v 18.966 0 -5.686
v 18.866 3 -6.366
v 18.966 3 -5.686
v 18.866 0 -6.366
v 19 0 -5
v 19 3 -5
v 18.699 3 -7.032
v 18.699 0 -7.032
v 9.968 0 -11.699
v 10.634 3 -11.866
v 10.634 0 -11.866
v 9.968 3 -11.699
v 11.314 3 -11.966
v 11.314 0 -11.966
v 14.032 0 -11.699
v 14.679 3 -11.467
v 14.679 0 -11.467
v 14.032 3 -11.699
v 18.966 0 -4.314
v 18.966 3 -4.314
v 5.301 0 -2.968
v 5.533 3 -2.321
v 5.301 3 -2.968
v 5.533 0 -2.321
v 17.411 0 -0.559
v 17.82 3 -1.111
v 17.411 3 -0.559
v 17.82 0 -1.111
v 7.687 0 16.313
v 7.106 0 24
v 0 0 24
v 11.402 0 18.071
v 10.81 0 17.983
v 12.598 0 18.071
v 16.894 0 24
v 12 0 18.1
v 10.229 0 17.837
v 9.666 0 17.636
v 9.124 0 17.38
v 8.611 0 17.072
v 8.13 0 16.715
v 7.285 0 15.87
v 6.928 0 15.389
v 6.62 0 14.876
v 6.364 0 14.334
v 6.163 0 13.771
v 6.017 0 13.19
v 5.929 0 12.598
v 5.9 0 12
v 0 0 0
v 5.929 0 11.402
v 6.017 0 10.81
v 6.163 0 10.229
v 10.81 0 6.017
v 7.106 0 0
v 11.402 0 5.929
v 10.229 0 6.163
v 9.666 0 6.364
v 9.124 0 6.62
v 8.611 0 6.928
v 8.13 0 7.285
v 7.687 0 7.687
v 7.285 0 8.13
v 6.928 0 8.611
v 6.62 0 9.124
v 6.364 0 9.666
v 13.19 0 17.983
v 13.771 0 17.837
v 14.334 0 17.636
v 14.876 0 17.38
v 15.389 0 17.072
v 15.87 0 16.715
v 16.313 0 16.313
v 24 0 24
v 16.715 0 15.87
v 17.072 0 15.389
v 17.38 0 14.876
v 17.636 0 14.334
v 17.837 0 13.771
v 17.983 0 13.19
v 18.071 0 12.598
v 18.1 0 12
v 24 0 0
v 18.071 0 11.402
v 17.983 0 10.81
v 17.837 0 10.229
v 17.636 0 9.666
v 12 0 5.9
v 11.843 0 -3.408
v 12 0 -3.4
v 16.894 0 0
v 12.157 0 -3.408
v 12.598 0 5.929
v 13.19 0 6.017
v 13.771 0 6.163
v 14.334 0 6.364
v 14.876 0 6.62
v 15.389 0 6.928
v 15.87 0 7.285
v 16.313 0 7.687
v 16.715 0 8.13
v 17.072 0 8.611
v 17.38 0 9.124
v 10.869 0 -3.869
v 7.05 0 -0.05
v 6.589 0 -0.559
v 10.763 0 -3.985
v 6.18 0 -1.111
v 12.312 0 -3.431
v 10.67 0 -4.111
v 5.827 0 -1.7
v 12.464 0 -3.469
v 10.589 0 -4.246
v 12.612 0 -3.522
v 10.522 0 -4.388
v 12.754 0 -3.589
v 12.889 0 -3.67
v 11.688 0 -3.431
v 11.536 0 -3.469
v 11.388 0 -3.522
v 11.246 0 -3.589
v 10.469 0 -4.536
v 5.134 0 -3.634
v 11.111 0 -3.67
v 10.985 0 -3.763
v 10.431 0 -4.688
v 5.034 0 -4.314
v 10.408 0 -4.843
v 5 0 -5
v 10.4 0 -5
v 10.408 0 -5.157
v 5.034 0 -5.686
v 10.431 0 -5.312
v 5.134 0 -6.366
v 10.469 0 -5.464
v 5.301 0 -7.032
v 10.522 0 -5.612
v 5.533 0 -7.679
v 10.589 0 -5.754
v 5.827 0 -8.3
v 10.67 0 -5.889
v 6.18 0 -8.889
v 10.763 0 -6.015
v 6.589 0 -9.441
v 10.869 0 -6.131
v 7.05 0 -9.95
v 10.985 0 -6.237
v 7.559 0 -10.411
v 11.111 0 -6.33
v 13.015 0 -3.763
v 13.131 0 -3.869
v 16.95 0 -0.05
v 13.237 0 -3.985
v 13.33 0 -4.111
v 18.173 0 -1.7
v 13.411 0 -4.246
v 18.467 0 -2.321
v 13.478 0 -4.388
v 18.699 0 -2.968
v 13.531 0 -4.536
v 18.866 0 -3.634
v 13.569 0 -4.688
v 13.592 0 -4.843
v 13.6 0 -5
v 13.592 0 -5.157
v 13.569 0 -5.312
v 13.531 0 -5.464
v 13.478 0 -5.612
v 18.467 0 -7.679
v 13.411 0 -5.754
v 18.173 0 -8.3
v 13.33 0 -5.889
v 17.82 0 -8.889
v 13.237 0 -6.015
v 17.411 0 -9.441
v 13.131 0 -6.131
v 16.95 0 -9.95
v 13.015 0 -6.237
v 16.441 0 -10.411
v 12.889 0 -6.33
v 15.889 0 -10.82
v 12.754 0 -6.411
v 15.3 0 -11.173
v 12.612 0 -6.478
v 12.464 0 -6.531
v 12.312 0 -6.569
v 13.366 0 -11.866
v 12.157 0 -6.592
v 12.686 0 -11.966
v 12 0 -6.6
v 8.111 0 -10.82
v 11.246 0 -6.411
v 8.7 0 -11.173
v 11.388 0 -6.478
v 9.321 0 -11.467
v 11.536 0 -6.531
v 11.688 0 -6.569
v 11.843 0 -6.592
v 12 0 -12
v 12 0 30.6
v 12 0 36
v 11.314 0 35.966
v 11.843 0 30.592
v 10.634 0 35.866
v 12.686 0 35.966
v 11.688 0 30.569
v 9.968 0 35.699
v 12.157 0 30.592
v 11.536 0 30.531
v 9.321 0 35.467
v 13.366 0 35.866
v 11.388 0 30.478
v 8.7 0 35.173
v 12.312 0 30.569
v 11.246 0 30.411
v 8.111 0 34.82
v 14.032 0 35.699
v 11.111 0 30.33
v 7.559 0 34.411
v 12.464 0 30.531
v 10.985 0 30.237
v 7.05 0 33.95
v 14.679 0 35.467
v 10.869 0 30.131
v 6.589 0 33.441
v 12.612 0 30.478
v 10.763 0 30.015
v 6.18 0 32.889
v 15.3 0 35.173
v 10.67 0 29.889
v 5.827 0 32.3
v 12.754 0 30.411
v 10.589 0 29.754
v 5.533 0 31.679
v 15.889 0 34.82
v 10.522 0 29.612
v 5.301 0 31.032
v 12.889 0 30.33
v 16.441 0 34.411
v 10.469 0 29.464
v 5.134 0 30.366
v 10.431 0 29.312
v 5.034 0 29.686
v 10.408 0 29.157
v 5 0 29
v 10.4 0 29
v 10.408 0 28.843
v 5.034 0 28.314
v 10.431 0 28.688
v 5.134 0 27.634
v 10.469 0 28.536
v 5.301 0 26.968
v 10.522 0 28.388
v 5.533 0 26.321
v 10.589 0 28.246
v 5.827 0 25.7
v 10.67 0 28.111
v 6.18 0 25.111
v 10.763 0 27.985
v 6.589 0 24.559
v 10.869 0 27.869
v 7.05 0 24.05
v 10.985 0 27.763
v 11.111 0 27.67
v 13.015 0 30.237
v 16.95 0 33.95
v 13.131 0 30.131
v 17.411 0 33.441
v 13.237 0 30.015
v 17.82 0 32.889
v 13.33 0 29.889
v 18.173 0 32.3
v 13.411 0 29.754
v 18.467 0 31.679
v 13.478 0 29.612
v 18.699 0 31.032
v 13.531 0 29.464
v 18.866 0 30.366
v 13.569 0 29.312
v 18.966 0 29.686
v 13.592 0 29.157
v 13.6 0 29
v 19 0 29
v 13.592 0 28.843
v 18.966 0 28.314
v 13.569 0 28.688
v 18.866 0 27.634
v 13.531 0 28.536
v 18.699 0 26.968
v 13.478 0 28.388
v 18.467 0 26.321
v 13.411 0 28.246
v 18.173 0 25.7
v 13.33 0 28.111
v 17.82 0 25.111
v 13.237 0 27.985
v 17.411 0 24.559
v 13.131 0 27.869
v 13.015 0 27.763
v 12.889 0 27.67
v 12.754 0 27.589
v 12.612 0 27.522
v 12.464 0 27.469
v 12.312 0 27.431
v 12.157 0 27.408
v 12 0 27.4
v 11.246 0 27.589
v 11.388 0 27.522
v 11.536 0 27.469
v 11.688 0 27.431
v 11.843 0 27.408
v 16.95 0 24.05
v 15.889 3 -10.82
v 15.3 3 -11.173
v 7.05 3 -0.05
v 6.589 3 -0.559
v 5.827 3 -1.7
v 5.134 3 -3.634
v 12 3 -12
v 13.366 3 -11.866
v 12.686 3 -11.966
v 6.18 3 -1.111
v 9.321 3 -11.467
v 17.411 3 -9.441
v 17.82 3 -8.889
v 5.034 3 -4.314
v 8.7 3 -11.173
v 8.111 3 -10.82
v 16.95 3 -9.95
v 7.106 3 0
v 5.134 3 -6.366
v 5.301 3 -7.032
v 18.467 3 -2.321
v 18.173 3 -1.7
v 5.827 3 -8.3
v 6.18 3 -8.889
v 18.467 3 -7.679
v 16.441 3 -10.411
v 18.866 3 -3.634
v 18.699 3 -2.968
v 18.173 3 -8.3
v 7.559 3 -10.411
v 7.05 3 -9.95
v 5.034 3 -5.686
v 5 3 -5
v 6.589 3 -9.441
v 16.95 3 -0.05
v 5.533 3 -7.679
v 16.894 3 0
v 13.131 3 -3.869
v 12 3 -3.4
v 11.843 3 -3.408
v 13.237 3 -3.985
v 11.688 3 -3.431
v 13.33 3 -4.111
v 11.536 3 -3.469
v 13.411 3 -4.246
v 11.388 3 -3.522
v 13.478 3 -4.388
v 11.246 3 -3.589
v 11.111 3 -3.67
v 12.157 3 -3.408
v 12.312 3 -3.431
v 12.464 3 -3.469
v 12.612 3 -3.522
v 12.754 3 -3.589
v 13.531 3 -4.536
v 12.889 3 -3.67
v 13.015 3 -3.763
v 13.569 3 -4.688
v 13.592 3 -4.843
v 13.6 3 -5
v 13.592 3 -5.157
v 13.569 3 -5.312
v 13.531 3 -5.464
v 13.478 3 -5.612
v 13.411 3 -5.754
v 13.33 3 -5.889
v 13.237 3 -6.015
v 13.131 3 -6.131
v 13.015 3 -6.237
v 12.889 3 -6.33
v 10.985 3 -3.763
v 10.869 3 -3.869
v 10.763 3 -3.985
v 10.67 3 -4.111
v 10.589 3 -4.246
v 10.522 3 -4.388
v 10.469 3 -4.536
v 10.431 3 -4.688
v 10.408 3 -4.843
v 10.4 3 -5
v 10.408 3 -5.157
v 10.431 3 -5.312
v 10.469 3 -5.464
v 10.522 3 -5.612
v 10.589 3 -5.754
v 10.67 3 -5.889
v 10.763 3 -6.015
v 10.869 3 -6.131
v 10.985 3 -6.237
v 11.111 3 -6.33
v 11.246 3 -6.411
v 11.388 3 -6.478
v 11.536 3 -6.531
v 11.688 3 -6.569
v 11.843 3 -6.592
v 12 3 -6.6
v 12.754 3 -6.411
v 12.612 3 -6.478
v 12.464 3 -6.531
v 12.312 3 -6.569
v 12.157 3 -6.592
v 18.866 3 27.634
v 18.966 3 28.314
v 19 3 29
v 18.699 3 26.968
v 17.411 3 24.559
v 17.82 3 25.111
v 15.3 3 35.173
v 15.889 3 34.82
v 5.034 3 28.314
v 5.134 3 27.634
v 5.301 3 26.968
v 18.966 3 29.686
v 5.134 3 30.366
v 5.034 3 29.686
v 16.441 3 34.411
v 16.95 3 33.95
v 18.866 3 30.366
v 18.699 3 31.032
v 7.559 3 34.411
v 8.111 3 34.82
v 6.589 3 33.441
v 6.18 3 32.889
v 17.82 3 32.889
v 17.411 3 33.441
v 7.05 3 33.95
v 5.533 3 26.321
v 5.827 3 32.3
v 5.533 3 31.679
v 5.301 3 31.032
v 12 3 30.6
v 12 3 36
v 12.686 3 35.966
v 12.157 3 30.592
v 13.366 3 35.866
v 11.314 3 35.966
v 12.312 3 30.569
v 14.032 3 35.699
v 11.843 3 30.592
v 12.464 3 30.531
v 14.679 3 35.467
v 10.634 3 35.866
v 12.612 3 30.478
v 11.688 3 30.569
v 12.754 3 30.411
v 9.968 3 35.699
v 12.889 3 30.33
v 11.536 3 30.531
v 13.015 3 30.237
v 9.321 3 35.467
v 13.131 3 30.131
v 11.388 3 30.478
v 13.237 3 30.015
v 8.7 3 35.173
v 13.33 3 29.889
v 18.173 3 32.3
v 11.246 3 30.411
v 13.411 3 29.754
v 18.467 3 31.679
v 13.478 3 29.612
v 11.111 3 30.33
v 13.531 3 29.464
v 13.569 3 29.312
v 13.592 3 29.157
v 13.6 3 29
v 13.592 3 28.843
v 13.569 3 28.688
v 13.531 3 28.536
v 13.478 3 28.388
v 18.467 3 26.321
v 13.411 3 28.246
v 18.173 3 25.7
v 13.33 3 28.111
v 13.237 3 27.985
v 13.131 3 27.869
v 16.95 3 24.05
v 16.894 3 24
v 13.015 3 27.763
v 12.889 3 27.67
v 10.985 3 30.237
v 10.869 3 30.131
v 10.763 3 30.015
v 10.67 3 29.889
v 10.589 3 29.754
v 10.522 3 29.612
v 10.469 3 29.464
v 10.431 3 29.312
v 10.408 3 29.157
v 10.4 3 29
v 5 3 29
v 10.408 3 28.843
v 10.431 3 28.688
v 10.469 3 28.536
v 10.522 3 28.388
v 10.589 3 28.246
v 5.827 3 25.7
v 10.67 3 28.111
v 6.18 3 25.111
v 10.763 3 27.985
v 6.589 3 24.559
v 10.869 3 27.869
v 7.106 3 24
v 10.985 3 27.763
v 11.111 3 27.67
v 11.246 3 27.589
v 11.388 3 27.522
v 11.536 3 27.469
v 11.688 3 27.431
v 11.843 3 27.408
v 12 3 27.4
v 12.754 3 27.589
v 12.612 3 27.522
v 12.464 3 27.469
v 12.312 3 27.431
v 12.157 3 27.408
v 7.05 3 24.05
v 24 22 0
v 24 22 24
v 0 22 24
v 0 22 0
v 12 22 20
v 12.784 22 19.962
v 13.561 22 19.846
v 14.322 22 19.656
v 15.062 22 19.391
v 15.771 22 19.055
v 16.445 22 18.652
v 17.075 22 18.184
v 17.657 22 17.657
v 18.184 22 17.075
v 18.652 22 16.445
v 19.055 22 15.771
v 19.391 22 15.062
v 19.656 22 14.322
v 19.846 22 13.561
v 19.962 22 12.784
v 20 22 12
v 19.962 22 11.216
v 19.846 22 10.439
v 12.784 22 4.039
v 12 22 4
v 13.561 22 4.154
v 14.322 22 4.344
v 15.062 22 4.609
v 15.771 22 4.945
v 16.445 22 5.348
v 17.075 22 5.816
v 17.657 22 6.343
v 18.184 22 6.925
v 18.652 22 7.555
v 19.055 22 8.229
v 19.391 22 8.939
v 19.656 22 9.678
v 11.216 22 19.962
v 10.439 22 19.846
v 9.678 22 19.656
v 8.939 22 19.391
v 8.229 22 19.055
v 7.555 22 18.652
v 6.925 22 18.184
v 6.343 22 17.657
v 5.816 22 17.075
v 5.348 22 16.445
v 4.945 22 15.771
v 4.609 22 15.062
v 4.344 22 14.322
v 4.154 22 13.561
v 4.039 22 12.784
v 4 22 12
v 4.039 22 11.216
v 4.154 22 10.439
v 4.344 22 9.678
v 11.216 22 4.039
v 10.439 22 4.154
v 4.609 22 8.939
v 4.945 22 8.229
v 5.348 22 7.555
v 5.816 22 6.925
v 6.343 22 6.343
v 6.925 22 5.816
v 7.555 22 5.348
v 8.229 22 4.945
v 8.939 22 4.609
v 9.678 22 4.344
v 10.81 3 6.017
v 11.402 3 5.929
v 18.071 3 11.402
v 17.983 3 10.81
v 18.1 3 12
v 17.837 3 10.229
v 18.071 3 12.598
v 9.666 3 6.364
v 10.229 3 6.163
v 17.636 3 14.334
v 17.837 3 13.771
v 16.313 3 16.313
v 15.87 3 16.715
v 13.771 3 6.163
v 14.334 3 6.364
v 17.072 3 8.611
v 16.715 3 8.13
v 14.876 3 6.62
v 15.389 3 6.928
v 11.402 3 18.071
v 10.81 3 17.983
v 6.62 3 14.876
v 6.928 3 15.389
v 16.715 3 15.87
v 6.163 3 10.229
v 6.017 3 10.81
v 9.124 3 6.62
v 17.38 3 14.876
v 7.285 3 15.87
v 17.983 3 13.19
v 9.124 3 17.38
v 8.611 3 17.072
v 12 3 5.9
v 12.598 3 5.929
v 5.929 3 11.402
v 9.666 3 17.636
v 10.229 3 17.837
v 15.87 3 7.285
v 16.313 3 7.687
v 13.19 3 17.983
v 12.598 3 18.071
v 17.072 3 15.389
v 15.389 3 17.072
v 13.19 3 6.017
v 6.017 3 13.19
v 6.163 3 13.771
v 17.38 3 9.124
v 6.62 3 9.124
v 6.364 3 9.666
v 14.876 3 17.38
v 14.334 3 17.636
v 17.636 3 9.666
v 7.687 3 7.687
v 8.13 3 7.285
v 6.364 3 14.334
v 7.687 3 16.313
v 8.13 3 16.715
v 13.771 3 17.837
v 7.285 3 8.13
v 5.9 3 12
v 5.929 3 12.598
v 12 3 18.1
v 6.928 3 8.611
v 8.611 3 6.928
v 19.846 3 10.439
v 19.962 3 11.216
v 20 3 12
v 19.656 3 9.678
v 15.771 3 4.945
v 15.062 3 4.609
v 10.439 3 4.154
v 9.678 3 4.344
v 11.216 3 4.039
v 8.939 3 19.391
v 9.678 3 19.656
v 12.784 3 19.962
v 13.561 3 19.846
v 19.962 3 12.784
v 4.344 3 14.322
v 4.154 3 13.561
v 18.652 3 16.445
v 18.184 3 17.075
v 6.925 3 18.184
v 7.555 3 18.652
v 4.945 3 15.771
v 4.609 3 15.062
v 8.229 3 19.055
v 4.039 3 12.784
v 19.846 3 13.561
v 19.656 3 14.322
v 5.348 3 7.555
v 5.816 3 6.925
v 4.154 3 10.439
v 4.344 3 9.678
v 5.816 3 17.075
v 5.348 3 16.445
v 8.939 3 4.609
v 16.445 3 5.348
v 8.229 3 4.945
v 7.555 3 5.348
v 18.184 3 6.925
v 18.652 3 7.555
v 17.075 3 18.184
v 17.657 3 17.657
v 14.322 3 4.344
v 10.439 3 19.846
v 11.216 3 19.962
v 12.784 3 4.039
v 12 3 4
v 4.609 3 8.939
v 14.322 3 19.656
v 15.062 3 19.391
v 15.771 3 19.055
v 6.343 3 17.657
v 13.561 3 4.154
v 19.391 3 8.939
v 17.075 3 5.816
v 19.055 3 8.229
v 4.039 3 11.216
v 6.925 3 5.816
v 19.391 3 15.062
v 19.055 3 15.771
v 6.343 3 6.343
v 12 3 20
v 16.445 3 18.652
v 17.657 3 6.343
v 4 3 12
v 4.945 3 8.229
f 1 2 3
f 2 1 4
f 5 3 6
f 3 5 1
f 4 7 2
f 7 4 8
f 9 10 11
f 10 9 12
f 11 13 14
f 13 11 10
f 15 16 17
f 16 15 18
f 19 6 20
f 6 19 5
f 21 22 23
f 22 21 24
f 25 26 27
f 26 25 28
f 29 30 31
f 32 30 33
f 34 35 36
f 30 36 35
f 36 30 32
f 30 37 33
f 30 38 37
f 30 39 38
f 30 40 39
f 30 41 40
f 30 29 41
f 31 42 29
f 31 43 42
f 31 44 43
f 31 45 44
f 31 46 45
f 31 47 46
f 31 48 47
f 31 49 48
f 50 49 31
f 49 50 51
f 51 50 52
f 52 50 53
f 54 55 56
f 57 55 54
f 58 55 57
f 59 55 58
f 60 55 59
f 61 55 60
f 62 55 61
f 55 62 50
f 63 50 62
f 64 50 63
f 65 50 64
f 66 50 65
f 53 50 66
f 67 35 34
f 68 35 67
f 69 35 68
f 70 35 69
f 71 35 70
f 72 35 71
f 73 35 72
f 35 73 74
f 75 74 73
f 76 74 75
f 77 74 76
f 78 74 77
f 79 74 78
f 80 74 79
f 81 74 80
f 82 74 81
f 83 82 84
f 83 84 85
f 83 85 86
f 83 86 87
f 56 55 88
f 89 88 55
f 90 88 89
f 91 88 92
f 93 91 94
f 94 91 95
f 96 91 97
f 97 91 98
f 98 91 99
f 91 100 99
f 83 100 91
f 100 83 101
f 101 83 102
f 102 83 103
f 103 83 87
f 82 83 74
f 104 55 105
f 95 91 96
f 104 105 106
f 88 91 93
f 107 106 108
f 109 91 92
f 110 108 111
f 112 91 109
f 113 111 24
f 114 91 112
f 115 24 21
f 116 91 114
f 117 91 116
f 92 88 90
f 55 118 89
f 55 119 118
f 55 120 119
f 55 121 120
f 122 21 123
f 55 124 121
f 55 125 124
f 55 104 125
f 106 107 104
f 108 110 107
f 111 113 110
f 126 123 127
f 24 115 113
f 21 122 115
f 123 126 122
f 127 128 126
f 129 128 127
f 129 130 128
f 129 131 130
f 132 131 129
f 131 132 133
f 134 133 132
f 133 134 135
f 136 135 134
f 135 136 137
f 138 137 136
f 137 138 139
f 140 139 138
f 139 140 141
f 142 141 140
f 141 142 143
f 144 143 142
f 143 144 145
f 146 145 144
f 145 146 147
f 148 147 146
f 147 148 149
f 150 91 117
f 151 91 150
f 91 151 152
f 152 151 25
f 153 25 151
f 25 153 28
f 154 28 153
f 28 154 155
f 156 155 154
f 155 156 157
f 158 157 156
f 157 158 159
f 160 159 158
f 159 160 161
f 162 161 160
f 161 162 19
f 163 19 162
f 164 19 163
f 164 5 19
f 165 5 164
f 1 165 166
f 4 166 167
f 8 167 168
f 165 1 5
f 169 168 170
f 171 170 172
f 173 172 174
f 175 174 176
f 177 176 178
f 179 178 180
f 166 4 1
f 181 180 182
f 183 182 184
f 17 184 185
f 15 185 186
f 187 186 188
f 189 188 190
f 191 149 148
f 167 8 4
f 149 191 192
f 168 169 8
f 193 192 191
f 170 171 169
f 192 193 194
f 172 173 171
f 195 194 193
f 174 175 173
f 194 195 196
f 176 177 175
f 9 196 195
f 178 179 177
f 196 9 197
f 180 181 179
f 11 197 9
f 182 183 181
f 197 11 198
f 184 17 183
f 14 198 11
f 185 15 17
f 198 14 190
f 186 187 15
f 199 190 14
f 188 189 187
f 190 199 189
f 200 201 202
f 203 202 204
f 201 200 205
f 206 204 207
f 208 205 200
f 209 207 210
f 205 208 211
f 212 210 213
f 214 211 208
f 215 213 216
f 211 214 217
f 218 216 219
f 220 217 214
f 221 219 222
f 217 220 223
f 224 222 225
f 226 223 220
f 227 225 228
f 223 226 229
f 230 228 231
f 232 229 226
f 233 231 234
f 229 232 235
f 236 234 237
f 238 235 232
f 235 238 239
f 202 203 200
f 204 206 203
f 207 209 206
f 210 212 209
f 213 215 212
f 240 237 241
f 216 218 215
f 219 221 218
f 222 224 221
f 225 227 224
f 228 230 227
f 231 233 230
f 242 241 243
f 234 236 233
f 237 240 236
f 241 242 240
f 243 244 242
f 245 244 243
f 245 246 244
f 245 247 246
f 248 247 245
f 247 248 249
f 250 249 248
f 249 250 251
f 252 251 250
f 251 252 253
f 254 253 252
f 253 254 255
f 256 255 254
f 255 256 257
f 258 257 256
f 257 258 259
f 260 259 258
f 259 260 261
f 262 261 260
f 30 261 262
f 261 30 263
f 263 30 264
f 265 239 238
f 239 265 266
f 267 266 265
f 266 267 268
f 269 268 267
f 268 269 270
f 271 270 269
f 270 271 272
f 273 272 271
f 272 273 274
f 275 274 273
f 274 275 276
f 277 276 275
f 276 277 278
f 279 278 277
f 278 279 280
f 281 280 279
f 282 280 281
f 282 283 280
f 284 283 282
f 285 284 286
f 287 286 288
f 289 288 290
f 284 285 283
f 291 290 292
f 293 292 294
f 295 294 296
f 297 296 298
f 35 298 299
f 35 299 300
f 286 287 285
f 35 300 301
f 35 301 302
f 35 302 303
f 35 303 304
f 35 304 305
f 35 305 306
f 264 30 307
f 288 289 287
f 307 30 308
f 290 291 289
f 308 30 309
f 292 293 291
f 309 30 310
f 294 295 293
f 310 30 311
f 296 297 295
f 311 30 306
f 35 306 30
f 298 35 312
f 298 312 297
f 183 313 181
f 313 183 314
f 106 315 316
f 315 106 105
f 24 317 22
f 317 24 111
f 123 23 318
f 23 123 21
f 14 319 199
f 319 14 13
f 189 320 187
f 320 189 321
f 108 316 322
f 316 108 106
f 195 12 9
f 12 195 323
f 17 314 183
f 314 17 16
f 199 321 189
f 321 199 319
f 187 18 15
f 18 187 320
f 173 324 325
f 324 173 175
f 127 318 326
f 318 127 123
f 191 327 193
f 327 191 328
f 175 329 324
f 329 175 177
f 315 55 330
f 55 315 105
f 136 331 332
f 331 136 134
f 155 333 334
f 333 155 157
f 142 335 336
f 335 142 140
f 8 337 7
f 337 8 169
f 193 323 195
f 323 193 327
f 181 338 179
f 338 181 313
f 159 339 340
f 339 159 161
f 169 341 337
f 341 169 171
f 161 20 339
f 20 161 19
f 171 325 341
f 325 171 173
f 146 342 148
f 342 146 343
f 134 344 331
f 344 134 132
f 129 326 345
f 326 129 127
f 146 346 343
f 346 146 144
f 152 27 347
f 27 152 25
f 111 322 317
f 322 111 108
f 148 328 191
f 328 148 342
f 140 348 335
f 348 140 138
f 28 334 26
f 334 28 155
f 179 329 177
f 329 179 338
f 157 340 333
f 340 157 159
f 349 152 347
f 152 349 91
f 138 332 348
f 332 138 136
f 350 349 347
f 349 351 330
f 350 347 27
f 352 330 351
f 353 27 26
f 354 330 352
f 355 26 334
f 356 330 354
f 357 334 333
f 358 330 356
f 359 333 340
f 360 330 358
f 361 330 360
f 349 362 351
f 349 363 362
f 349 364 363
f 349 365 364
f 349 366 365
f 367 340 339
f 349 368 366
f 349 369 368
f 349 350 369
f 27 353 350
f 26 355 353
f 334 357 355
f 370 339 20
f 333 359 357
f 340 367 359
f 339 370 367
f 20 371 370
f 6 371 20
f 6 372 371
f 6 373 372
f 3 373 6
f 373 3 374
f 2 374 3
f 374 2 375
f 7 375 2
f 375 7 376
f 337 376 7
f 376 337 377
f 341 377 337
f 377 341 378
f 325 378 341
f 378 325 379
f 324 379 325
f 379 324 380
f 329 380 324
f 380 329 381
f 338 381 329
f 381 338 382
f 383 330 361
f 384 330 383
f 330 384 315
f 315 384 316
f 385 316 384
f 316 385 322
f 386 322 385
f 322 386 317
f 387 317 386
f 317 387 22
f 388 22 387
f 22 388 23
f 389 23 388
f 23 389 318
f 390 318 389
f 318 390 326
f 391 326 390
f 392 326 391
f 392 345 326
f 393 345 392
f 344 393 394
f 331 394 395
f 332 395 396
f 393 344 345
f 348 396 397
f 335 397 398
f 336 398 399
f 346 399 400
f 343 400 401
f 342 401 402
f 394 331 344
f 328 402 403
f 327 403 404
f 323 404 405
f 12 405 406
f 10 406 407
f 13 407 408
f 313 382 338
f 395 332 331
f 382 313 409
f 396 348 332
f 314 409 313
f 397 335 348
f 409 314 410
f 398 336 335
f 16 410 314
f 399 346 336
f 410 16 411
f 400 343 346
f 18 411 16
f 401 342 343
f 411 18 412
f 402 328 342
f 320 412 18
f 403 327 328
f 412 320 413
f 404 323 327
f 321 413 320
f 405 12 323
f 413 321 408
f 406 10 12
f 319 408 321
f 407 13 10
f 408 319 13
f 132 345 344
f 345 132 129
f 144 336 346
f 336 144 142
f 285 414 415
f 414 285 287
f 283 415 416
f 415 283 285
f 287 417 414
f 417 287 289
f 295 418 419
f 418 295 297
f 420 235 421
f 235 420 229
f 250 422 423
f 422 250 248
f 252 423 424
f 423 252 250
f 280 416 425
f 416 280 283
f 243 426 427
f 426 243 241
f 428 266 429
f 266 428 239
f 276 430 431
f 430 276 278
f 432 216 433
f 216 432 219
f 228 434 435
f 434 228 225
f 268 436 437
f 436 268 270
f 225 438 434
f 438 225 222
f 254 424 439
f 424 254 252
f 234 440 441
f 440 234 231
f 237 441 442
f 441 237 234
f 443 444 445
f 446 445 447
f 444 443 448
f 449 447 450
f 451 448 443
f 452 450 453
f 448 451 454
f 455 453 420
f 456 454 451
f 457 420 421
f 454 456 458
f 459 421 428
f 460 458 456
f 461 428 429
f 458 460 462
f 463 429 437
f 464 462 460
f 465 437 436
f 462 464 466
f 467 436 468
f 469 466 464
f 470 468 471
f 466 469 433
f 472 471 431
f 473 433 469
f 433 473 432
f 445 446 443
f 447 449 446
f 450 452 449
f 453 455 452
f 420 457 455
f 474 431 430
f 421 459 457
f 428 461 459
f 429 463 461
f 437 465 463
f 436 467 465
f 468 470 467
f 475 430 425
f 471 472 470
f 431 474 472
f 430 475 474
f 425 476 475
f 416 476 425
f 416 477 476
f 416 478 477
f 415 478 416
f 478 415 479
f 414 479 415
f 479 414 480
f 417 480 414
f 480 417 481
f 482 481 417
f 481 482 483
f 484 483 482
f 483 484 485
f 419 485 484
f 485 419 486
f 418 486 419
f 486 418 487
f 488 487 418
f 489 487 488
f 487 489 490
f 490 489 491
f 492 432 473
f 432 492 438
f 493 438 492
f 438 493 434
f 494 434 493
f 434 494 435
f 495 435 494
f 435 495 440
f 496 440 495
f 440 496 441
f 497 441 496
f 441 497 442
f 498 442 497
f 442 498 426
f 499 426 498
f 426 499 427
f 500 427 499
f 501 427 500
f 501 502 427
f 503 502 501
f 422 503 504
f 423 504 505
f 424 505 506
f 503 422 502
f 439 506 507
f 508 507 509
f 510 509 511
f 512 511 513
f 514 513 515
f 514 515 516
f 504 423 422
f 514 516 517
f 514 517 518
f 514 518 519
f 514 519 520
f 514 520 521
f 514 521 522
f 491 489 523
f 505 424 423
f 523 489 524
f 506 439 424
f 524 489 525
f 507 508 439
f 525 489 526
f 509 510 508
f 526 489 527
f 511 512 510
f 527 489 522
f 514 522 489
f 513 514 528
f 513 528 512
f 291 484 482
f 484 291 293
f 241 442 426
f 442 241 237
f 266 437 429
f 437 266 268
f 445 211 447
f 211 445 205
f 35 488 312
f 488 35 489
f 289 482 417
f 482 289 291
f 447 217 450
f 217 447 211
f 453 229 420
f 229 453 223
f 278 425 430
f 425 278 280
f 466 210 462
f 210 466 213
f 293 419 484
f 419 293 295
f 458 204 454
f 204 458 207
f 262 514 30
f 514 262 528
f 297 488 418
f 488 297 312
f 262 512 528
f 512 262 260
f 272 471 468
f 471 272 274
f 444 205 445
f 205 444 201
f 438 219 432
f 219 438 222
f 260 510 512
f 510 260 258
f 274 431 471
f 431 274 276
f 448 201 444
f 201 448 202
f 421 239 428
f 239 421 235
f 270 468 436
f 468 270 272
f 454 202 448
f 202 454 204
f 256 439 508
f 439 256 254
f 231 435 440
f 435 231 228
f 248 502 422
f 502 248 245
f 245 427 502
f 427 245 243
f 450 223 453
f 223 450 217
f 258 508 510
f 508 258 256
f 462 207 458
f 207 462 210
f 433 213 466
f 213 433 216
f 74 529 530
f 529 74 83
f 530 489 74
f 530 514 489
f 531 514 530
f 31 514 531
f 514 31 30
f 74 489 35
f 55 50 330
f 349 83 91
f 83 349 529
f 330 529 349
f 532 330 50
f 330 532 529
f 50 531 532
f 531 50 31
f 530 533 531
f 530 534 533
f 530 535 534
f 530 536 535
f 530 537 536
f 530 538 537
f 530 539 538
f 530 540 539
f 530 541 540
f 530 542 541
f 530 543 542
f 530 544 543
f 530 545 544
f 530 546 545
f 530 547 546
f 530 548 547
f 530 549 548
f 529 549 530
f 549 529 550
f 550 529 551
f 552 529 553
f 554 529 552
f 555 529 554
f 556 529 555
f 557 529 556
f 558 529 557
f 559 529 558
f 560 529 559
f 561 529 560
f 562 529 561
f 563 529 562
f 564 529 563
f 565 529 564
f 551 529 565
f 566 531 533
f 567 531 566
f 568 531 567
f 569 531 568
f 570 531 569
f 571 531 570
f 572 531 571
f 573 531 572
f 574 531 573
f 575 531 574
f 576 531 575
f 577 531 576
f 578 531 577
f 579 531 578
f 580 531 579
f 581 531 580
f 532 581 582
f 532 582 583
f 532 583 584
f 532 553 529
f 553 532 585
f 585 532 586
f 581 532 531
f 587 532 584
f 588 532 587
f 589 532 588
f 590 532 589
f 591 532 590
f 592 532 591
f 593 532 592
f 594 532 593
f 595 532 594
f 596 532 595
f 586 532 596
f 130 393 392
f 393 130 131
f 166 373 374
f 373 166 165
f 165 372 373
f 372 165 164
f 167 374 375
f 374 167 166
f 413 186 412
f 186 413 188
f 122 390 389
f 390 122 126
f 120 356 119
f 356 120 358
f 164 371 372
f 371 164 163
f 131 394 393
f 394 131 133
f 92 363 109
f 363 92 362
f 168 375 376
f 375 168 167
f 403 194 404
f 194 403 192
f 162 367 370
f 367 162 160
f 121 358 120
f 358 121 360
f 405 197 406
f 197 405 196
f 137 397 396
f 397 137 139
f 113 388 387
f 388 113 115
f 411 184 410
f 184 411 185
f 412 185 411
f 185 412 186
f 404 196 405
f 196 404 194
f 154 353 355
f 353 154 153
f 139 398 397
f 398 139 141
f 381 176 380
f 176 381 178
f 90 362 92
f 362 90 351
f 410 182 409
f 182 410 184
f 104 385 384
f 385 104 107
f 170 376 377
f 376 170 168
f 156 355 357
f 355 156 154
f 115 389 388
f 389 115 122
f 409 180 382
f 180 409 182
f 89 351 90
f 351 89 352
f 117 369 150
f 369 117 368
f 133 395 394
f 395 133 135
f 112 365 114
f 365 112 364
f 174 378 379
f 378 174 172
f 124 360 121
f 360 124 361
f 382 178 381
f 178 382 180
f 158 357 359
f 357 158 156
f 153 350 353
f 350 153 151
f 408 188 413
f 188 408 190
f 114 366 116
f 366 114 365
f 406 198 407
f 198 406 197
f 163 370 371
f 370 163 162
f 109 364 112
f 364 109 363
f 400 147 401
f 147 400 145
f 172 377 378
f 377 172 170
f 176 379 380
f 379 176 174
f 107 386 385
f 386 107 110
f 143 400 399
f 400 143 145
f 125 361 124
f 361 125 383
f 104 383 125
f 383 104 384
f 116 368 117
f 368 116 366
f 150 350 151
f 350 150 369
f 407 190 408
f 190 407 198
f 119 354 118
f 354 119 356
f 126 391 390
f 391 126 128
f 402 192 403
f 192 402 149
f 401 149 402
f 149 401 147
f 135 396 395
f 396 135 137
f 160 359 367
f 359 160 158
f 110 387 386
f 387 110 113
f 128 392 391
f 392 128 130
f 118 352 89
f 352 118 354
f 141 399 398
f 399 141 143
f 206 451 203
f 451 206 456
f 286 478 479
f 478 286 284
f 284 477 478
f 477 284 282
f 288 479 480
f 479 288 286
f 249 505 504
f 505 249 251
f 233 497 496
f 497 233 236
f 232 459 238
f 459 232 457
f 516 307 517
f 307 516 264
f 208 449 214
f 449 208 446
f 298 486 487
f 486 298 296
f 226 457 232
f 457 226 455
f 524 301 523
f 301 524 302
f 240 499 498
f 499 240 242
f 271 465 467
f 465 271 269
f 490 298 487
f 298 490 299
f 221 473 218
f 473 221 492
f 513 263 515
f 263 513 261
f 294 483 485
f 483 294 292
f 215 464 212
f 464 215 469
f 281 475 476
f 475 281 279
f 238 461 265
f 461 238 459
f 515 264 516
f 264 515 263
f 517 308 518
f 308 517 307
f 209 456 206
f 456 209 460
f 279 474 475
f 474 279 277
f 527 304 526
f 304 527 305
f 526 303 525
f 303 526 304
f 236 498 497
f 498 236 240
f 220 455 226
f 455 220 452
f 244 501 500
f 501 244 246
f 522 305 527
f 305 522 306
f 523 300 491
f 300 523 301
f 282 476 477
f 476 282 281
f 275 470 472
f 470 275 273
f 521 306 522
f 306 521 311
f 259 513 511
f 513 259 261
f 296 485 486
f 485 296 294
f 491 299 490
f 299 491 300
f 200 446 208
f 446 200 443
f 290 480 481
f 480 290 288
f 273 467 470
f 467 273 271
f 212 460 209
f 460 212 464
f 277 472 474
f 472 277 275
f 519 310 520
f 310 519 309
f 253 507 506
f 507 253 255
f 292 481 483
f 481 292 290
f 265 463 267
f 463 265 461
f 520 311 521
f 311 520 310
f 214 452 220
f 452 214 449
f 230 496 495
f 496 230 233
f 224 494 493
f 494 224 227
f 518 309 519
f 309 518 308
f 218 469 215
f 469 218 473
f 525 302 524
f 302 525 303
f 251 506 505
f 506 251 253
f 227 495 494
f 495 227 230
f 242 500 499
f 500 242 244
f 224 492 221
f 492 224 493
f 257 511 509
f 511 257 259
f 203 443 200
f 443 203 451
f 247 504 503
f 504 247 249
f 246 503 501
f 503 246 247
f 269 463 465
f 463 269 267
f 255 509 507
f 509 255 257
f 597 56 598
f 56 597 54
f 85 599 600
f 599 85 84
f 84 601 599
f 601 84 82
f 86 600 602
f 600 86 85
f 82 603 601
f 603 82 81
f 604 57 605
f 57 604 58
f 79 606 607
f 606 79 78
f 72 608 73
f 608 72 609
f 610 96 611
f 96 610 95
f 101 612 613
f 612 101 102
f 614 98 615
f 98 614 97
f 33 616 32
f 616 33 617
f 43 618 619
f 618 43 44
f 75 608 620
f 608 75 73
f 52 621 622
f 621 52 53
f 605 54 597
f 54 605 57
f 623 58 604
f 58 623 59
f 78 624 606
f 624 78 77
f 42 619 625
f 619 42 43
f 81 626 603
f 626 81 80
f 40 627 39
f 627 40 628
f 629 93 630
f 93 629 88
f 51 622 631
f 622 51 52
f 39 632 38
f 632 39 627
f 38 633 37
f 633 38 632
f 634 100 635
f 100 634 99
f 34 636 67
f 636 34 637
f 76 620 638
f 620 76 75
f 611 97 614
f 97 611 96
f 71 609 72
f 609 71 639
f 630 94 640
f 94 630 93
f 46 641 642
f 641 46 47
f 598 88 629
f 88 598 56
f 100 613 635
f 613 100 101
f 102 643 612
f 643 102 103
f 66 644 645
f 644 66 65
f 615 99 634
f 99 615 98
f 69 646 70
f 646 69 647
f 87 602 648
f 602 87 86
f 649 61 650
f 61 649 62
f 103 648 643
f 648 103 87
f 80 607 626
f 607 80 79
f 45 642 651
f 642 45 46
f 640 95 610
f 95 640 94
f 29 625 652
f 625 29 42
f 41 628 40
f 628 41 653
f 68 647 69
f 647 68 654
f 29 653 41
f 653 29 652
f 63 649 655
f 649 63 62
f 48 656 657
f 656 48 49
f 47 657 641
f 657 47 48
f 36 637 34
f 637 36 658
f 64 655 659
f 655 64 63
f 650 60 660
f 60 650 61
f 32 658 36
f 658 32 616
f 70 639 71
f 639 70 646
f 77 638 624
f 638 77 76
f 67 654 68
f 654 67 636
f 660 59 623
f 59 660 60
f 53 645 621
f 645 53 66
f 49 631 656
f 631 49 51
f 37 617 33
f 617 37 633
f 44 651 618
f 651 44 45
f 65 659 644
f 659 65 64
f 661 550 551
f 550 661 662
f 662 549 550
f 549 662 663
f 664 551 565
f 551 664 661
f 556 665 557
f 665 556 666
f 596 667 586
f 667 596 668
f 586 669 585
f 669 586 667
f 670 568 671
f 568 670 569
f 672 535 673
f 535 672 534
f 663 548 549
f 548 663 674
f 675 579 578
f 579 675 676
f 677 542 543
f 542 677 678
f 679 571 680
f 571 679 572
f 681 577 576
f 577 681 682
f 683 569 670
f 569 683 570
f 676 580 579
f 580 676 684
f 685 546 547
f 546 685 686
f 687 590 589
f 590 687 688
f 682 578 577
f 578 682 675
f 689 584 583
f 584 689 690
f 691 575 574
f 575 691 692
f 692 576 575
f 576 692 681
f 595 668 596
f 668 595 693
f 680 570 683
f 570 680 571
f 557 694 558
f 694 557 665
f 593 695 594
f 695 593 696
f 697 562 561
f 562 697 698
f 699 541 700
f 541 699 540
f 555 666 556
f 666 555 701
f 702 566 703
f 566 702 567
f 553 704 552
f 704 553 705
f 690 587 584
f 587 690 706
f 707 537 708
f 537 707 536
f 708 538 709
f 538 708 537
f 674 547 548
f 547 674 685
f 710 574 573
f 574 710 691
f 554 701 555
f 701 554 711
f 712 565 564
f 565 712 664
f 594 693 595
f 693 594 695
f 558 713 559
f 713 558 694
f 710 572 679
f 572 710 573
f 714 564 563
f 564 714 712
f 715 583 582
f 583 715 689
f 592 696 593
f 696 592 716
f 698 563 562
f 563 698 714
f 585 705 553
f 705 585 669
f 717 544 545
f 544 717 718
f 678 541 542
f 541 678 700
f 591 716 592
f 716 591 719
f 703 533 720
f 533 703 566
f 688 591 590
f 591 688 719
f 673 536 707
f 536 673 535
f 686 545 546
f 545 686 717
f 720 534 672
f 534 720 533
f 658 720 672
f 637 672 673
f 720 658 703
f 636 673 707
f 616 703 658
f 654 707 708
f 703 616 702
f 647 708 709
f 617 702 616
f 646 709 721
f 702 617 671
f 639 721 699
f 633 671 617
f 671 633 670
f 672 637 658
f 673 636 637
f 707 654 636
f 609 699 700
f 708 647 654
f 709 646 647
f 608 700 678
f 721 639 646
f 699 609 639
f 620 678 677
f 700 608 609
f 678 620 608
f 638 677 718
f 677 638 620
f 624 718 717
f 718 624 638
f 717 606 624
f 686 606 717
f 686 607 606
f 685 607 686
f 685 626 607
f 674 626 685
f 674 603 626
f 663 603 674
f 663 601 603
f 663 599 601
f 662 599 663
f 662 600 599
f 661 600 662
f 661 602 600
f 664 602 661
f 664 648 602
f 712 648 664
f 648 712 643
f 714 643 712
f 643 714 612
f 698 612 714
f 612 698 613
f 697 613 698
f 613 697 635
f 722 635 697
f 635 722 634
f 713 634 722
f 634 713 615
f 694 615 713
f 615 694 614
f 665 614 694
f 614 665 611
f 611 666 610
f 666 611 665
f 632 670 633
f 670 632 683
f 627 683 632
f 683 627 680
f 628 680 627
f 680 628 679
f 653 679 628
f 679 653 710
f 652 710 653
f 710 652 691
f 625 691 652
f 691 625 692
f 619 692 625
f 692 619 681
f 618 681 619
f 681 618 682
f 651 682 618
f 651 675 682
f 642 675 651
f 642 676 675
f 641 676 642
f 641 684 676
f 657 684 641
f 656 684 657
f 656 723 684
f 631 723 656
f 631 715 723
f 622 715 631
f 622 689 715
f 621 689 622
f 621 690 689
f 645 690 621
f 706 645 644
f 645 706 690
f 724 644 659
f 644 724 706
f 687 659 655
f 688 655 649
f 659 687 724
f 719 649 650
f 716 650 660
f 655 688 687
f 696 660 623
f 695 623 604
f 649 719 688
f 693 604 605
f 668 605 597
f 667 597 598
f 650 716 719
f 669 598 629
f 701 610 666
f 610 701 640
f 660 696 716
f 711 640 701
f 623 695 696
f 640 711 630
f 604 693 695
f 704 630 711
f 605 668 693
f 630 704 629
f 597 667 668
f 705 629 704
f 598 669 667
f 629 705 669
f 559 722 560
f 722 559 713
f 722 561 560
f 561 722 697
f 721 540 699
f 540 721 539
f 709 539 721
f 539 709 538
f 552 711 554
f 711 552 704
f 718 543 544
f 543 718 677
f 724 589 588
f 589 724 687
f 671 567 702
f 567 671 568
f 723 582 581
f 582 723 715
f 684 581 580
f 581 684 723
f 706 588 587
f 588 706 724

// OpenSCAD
// ============================================================================
// Luna's Baby Mobile - DC Barrel Jack Mount
// ============================================================================
// Panel mount for 5.5×2.1mm DC Barrel Jack (XC008)
// Standard panel hole: 12mm diameter
// For optional wall power input
// ============================================================================

include <config.scad>

// ----------------------------------------------------------------------------
// BARREL JACK CONFIGURATION
// ----------------------------------------------------------------------------

// Panel mount specifications
jack_hole_diameter = barrel_jack_panel_hole;          // 12mm standard
jack_flange_d = barrel_jack_flange_diameter;          // 14mm flange
jack_body_length = barrel_jack_body_length;           // 14mm behind panel
jack_nut_depth = barrel_jack_nut_depth;               // 3mm nut

// Mount wall thickness
wall = 3;

// ----------------------------------------------------------------------------
// PANEL MOUNT BRACKET
// ----------------------------------------------------------------------------
// Simple bracket to panel-mount the barrel jack

module barrel_jack_panel_mount() {
    bracket_width = jack_flange_d + 10;
    bracket_height = jack_flange_d + 10;
    bracket_depth = jack_body_length + wall + 5;
    
    difference() {
        union() {
            // Main bracket body
            cube([bracket_width, bracket_depth, bracket_height]);
            
            // Mounting ears
            for (z = [-1, 1]) {
                translate([bracket_width/2, 0, bracket_height/2 + z * (bracket_height/2 + 5)])
                rotate([-90, 0, 0])
                cylinder(d = 14, h = wall);
            }
        }
        
        // Jack hole (front panel)
        translate([bracket_width/2, -1, bracket_height/2])
        rotate([-90, 0, 0])
        cylinder(d = jack_hole_diameter + tolerance, h = wall + 2);
        
        // Jack body clearance (behind panel)
        translate([bracket_width/2, wall, bracket_height/2])
        rotate([-90, 0, 0])
        cylinder(d = jack_flange_d + 2, h = bracket_depth);
        
        // Wire exit (back)
        translate([bracket_width/2, bracket_depth - 1, bracket_height/2])
        rotate([-90, 0, 0])
        cylinder(d = 8, h = wall + 2);
        
        // Mounting screw holes
        for (z = [-1, 1]) {
            translate([bracket_width/2, -1, bracket_height/2 + z * (bracket_height/2 + 5)])
            rotate([-90, 0, 0])
            cylinder(d = 3 + tolerance, h = wall + 2);
        }
    }
}

// ----------------------------------------------------------------------------
// FLUSH PANEL MOUNT
// ----------------------------------------------------------------------------
// Thinner mount for embedding in an existing panel

module barrel_jack_flush_mount() {
    mount_d = jack_flange_d + 8;
    mount_h = wall + jack_nut_depth;
    
    difference() {
        // Cylindrical mount body
        cylinder(d = mount_d, h = mount_h);
        
        // Jack hole
        translate([0, 0, -1])
        cylinder(d = jack_hole_diameter + tolerance, h = mount_h + 2);
        
        // Flange recess (front)
        translate([0, 0, mount_h - 1])
        cylinder(d = jack_flange_d + 1, h = 2);
        
        // Nut recess (back, for tightening)
        translate([0, 0, -1])
        cylinder(d = jack_flange_d + 1, h = jack_nut_depth + 1);
        
        // Mounting screw holes
        for (a = [0, 90, 180, 270]) {
            rotate([0, 0, a])
            translate([mount_d/2 - 3, 0, -1])
            cylinder(d = 2.5, h = mount_h + 2);
        }
    }
}

// ----------------------------------------------------------------------------
// BARREL JACK CUTOUT (for embedding)
// ----------------------------------------------------------------------------
// Use this as a negative shape in your housing

module barrel_jack_cutout() {
    // Through hole
    cylinder(d = jack_hole_diameter + tolerance, h = 50, center = true);
    
    // Flange recess (front side)
    translate([0, 0, wall/2])
    cylinder(d = jack_flange_d + 1, h = 2);
    
    // Body clearance (back side)
    translate([0, 0, -jack_body_length - 5])
    cylinder(d = jack_flange_d + 2, h = jack_body_length + 5);
}

// ----------------------------------------------------------------------------
// BARREL JACK 3D MODEL (Parametric)
// ----------------------------------------------------------------------------
// Since no STEP model is available, this is a parametric model
// based on standard 5521 barrel jack dimensions

module barrel_jack_model() {
    color([0.2, 0.2, 0.2]) {
        // Main body (cylindrical, behind panel)
        translate([0, 0, -jack_body_length + 2])
        cylinder(d = 10, h = jack_body_length);
        
        // Panel flange/collar
        translate([0, 0, -2])
        cylinder(d = jack_flange_d, h = 4);
        
        // Threaded section (for nut)
        translate([0, 0, 2])
        cylinder(d = jack_hole_diameter - 0.5, h = jack_nut_depth + 2);
        
        // Socket opening
        translate([0, 0, jack_nut_depth + 2])
        difference() {
            cylinder(d = barrel_jack_plug_outer + 2, h = 3);
            translate([0, 0, 0.5])
            cylinder(d = barrel_jack_plug_outer, h = 3);
        }
    }
    
    // Center pin (visible in socket)
    color([0.9, 0.7, 0.2])
    translate([0, 0, jack_nut_depth + 2])
    cylinder(d = barrel_jack_plug_inner, h = 3);
    
    // Wires
    color([0.8, 0.1, 0.1])
    translate([3, 0, -jack_body_length - 5])
    cylinder(d = 1.5, h = barrel_jack_wire_length);
    
    color([0.1, 0.1, 0.1])
    translate([-3, 0, -jack_body_length - 5])
    cylinder(d = 1.5, h = barrel_jack_wire_length);
}

// ----------------------------------------------------------------------------
// COMBINATION PANEL WITH JACK AND SWITCH
// ----------------------------------------------------------------------------
// Panel that holds both the barrel jack and power switch

module power_panel() {
    panel_w = 70;
    panel_h = 40;
    panel_d = wall;
    
    difference() {
        // Panel base
        cube([panel_w, panel_d, panel_h]);
        
        // Barrel jack hole
        translate([panel_w * 0.3, -1, panel_h/2])
        rotate([-90, 0, 0])
        cylinder(d = jack_hole_diameter + tolerance, h = panel_d + 2);
        
        // Switch window (placeholder - adjust based on actual switch)
        translate([panel_w * 0.7 - 8, -1, panel_h/2 - 5])
        cube([16, panel_d + 2, 10]);
        
        // Mounting holes
        for (x = [8, panel_w - 8]) {
            for (z = [8, panel_h - 8]) {
                translate([x, -1, z])
                rotate([-90, 0, 0])
                cylinder(d = 3 + tolerance, h = panel_d + 2);
            }
        }
    }
    
    // Labels (embossed)
    translate([panel_w * 0.3, 0, panel_h/2 + jack_hole_diameter/2 + 3])
    rotate([90, 0, 0])
    linear_extrude(height = 0.5)
    text("DC IN", size = 4, halign = "center", valign = "bottom");
    
    translate([panel_w * 0.7, 0, panel_h/2 + 10])
    rotate([90, 0, 0])
    linear_extrude(height = 0.5)
    text("POWER", size = 4, halign = "center", valign = "bottom");
}

// ----------------------------------------------------------------------------
// RENDER
// ----------------------------------------------------------------------------

if ($preview) {
    // Panel mount bracket
    barrel_jack_panel_mount();
    
    // Show jack in position
    translate([jack_flange_d/2 + 5, wall, (jack_flange_d + 10)/2])
    rotate([-90, 0, 0])
    barrel_jack_model();
    
    // Alternative: show power panel
    // translate([100, 0, 0]) power_panel();
} else {
    barrel_jack_panel_mount();
}

// Uncomment to export specific parts:
// barrel_jack_panel_mount();
// barrel_jack_flush_mount();
// power_panel();
// barrel_jack_model();  // For visualization only
